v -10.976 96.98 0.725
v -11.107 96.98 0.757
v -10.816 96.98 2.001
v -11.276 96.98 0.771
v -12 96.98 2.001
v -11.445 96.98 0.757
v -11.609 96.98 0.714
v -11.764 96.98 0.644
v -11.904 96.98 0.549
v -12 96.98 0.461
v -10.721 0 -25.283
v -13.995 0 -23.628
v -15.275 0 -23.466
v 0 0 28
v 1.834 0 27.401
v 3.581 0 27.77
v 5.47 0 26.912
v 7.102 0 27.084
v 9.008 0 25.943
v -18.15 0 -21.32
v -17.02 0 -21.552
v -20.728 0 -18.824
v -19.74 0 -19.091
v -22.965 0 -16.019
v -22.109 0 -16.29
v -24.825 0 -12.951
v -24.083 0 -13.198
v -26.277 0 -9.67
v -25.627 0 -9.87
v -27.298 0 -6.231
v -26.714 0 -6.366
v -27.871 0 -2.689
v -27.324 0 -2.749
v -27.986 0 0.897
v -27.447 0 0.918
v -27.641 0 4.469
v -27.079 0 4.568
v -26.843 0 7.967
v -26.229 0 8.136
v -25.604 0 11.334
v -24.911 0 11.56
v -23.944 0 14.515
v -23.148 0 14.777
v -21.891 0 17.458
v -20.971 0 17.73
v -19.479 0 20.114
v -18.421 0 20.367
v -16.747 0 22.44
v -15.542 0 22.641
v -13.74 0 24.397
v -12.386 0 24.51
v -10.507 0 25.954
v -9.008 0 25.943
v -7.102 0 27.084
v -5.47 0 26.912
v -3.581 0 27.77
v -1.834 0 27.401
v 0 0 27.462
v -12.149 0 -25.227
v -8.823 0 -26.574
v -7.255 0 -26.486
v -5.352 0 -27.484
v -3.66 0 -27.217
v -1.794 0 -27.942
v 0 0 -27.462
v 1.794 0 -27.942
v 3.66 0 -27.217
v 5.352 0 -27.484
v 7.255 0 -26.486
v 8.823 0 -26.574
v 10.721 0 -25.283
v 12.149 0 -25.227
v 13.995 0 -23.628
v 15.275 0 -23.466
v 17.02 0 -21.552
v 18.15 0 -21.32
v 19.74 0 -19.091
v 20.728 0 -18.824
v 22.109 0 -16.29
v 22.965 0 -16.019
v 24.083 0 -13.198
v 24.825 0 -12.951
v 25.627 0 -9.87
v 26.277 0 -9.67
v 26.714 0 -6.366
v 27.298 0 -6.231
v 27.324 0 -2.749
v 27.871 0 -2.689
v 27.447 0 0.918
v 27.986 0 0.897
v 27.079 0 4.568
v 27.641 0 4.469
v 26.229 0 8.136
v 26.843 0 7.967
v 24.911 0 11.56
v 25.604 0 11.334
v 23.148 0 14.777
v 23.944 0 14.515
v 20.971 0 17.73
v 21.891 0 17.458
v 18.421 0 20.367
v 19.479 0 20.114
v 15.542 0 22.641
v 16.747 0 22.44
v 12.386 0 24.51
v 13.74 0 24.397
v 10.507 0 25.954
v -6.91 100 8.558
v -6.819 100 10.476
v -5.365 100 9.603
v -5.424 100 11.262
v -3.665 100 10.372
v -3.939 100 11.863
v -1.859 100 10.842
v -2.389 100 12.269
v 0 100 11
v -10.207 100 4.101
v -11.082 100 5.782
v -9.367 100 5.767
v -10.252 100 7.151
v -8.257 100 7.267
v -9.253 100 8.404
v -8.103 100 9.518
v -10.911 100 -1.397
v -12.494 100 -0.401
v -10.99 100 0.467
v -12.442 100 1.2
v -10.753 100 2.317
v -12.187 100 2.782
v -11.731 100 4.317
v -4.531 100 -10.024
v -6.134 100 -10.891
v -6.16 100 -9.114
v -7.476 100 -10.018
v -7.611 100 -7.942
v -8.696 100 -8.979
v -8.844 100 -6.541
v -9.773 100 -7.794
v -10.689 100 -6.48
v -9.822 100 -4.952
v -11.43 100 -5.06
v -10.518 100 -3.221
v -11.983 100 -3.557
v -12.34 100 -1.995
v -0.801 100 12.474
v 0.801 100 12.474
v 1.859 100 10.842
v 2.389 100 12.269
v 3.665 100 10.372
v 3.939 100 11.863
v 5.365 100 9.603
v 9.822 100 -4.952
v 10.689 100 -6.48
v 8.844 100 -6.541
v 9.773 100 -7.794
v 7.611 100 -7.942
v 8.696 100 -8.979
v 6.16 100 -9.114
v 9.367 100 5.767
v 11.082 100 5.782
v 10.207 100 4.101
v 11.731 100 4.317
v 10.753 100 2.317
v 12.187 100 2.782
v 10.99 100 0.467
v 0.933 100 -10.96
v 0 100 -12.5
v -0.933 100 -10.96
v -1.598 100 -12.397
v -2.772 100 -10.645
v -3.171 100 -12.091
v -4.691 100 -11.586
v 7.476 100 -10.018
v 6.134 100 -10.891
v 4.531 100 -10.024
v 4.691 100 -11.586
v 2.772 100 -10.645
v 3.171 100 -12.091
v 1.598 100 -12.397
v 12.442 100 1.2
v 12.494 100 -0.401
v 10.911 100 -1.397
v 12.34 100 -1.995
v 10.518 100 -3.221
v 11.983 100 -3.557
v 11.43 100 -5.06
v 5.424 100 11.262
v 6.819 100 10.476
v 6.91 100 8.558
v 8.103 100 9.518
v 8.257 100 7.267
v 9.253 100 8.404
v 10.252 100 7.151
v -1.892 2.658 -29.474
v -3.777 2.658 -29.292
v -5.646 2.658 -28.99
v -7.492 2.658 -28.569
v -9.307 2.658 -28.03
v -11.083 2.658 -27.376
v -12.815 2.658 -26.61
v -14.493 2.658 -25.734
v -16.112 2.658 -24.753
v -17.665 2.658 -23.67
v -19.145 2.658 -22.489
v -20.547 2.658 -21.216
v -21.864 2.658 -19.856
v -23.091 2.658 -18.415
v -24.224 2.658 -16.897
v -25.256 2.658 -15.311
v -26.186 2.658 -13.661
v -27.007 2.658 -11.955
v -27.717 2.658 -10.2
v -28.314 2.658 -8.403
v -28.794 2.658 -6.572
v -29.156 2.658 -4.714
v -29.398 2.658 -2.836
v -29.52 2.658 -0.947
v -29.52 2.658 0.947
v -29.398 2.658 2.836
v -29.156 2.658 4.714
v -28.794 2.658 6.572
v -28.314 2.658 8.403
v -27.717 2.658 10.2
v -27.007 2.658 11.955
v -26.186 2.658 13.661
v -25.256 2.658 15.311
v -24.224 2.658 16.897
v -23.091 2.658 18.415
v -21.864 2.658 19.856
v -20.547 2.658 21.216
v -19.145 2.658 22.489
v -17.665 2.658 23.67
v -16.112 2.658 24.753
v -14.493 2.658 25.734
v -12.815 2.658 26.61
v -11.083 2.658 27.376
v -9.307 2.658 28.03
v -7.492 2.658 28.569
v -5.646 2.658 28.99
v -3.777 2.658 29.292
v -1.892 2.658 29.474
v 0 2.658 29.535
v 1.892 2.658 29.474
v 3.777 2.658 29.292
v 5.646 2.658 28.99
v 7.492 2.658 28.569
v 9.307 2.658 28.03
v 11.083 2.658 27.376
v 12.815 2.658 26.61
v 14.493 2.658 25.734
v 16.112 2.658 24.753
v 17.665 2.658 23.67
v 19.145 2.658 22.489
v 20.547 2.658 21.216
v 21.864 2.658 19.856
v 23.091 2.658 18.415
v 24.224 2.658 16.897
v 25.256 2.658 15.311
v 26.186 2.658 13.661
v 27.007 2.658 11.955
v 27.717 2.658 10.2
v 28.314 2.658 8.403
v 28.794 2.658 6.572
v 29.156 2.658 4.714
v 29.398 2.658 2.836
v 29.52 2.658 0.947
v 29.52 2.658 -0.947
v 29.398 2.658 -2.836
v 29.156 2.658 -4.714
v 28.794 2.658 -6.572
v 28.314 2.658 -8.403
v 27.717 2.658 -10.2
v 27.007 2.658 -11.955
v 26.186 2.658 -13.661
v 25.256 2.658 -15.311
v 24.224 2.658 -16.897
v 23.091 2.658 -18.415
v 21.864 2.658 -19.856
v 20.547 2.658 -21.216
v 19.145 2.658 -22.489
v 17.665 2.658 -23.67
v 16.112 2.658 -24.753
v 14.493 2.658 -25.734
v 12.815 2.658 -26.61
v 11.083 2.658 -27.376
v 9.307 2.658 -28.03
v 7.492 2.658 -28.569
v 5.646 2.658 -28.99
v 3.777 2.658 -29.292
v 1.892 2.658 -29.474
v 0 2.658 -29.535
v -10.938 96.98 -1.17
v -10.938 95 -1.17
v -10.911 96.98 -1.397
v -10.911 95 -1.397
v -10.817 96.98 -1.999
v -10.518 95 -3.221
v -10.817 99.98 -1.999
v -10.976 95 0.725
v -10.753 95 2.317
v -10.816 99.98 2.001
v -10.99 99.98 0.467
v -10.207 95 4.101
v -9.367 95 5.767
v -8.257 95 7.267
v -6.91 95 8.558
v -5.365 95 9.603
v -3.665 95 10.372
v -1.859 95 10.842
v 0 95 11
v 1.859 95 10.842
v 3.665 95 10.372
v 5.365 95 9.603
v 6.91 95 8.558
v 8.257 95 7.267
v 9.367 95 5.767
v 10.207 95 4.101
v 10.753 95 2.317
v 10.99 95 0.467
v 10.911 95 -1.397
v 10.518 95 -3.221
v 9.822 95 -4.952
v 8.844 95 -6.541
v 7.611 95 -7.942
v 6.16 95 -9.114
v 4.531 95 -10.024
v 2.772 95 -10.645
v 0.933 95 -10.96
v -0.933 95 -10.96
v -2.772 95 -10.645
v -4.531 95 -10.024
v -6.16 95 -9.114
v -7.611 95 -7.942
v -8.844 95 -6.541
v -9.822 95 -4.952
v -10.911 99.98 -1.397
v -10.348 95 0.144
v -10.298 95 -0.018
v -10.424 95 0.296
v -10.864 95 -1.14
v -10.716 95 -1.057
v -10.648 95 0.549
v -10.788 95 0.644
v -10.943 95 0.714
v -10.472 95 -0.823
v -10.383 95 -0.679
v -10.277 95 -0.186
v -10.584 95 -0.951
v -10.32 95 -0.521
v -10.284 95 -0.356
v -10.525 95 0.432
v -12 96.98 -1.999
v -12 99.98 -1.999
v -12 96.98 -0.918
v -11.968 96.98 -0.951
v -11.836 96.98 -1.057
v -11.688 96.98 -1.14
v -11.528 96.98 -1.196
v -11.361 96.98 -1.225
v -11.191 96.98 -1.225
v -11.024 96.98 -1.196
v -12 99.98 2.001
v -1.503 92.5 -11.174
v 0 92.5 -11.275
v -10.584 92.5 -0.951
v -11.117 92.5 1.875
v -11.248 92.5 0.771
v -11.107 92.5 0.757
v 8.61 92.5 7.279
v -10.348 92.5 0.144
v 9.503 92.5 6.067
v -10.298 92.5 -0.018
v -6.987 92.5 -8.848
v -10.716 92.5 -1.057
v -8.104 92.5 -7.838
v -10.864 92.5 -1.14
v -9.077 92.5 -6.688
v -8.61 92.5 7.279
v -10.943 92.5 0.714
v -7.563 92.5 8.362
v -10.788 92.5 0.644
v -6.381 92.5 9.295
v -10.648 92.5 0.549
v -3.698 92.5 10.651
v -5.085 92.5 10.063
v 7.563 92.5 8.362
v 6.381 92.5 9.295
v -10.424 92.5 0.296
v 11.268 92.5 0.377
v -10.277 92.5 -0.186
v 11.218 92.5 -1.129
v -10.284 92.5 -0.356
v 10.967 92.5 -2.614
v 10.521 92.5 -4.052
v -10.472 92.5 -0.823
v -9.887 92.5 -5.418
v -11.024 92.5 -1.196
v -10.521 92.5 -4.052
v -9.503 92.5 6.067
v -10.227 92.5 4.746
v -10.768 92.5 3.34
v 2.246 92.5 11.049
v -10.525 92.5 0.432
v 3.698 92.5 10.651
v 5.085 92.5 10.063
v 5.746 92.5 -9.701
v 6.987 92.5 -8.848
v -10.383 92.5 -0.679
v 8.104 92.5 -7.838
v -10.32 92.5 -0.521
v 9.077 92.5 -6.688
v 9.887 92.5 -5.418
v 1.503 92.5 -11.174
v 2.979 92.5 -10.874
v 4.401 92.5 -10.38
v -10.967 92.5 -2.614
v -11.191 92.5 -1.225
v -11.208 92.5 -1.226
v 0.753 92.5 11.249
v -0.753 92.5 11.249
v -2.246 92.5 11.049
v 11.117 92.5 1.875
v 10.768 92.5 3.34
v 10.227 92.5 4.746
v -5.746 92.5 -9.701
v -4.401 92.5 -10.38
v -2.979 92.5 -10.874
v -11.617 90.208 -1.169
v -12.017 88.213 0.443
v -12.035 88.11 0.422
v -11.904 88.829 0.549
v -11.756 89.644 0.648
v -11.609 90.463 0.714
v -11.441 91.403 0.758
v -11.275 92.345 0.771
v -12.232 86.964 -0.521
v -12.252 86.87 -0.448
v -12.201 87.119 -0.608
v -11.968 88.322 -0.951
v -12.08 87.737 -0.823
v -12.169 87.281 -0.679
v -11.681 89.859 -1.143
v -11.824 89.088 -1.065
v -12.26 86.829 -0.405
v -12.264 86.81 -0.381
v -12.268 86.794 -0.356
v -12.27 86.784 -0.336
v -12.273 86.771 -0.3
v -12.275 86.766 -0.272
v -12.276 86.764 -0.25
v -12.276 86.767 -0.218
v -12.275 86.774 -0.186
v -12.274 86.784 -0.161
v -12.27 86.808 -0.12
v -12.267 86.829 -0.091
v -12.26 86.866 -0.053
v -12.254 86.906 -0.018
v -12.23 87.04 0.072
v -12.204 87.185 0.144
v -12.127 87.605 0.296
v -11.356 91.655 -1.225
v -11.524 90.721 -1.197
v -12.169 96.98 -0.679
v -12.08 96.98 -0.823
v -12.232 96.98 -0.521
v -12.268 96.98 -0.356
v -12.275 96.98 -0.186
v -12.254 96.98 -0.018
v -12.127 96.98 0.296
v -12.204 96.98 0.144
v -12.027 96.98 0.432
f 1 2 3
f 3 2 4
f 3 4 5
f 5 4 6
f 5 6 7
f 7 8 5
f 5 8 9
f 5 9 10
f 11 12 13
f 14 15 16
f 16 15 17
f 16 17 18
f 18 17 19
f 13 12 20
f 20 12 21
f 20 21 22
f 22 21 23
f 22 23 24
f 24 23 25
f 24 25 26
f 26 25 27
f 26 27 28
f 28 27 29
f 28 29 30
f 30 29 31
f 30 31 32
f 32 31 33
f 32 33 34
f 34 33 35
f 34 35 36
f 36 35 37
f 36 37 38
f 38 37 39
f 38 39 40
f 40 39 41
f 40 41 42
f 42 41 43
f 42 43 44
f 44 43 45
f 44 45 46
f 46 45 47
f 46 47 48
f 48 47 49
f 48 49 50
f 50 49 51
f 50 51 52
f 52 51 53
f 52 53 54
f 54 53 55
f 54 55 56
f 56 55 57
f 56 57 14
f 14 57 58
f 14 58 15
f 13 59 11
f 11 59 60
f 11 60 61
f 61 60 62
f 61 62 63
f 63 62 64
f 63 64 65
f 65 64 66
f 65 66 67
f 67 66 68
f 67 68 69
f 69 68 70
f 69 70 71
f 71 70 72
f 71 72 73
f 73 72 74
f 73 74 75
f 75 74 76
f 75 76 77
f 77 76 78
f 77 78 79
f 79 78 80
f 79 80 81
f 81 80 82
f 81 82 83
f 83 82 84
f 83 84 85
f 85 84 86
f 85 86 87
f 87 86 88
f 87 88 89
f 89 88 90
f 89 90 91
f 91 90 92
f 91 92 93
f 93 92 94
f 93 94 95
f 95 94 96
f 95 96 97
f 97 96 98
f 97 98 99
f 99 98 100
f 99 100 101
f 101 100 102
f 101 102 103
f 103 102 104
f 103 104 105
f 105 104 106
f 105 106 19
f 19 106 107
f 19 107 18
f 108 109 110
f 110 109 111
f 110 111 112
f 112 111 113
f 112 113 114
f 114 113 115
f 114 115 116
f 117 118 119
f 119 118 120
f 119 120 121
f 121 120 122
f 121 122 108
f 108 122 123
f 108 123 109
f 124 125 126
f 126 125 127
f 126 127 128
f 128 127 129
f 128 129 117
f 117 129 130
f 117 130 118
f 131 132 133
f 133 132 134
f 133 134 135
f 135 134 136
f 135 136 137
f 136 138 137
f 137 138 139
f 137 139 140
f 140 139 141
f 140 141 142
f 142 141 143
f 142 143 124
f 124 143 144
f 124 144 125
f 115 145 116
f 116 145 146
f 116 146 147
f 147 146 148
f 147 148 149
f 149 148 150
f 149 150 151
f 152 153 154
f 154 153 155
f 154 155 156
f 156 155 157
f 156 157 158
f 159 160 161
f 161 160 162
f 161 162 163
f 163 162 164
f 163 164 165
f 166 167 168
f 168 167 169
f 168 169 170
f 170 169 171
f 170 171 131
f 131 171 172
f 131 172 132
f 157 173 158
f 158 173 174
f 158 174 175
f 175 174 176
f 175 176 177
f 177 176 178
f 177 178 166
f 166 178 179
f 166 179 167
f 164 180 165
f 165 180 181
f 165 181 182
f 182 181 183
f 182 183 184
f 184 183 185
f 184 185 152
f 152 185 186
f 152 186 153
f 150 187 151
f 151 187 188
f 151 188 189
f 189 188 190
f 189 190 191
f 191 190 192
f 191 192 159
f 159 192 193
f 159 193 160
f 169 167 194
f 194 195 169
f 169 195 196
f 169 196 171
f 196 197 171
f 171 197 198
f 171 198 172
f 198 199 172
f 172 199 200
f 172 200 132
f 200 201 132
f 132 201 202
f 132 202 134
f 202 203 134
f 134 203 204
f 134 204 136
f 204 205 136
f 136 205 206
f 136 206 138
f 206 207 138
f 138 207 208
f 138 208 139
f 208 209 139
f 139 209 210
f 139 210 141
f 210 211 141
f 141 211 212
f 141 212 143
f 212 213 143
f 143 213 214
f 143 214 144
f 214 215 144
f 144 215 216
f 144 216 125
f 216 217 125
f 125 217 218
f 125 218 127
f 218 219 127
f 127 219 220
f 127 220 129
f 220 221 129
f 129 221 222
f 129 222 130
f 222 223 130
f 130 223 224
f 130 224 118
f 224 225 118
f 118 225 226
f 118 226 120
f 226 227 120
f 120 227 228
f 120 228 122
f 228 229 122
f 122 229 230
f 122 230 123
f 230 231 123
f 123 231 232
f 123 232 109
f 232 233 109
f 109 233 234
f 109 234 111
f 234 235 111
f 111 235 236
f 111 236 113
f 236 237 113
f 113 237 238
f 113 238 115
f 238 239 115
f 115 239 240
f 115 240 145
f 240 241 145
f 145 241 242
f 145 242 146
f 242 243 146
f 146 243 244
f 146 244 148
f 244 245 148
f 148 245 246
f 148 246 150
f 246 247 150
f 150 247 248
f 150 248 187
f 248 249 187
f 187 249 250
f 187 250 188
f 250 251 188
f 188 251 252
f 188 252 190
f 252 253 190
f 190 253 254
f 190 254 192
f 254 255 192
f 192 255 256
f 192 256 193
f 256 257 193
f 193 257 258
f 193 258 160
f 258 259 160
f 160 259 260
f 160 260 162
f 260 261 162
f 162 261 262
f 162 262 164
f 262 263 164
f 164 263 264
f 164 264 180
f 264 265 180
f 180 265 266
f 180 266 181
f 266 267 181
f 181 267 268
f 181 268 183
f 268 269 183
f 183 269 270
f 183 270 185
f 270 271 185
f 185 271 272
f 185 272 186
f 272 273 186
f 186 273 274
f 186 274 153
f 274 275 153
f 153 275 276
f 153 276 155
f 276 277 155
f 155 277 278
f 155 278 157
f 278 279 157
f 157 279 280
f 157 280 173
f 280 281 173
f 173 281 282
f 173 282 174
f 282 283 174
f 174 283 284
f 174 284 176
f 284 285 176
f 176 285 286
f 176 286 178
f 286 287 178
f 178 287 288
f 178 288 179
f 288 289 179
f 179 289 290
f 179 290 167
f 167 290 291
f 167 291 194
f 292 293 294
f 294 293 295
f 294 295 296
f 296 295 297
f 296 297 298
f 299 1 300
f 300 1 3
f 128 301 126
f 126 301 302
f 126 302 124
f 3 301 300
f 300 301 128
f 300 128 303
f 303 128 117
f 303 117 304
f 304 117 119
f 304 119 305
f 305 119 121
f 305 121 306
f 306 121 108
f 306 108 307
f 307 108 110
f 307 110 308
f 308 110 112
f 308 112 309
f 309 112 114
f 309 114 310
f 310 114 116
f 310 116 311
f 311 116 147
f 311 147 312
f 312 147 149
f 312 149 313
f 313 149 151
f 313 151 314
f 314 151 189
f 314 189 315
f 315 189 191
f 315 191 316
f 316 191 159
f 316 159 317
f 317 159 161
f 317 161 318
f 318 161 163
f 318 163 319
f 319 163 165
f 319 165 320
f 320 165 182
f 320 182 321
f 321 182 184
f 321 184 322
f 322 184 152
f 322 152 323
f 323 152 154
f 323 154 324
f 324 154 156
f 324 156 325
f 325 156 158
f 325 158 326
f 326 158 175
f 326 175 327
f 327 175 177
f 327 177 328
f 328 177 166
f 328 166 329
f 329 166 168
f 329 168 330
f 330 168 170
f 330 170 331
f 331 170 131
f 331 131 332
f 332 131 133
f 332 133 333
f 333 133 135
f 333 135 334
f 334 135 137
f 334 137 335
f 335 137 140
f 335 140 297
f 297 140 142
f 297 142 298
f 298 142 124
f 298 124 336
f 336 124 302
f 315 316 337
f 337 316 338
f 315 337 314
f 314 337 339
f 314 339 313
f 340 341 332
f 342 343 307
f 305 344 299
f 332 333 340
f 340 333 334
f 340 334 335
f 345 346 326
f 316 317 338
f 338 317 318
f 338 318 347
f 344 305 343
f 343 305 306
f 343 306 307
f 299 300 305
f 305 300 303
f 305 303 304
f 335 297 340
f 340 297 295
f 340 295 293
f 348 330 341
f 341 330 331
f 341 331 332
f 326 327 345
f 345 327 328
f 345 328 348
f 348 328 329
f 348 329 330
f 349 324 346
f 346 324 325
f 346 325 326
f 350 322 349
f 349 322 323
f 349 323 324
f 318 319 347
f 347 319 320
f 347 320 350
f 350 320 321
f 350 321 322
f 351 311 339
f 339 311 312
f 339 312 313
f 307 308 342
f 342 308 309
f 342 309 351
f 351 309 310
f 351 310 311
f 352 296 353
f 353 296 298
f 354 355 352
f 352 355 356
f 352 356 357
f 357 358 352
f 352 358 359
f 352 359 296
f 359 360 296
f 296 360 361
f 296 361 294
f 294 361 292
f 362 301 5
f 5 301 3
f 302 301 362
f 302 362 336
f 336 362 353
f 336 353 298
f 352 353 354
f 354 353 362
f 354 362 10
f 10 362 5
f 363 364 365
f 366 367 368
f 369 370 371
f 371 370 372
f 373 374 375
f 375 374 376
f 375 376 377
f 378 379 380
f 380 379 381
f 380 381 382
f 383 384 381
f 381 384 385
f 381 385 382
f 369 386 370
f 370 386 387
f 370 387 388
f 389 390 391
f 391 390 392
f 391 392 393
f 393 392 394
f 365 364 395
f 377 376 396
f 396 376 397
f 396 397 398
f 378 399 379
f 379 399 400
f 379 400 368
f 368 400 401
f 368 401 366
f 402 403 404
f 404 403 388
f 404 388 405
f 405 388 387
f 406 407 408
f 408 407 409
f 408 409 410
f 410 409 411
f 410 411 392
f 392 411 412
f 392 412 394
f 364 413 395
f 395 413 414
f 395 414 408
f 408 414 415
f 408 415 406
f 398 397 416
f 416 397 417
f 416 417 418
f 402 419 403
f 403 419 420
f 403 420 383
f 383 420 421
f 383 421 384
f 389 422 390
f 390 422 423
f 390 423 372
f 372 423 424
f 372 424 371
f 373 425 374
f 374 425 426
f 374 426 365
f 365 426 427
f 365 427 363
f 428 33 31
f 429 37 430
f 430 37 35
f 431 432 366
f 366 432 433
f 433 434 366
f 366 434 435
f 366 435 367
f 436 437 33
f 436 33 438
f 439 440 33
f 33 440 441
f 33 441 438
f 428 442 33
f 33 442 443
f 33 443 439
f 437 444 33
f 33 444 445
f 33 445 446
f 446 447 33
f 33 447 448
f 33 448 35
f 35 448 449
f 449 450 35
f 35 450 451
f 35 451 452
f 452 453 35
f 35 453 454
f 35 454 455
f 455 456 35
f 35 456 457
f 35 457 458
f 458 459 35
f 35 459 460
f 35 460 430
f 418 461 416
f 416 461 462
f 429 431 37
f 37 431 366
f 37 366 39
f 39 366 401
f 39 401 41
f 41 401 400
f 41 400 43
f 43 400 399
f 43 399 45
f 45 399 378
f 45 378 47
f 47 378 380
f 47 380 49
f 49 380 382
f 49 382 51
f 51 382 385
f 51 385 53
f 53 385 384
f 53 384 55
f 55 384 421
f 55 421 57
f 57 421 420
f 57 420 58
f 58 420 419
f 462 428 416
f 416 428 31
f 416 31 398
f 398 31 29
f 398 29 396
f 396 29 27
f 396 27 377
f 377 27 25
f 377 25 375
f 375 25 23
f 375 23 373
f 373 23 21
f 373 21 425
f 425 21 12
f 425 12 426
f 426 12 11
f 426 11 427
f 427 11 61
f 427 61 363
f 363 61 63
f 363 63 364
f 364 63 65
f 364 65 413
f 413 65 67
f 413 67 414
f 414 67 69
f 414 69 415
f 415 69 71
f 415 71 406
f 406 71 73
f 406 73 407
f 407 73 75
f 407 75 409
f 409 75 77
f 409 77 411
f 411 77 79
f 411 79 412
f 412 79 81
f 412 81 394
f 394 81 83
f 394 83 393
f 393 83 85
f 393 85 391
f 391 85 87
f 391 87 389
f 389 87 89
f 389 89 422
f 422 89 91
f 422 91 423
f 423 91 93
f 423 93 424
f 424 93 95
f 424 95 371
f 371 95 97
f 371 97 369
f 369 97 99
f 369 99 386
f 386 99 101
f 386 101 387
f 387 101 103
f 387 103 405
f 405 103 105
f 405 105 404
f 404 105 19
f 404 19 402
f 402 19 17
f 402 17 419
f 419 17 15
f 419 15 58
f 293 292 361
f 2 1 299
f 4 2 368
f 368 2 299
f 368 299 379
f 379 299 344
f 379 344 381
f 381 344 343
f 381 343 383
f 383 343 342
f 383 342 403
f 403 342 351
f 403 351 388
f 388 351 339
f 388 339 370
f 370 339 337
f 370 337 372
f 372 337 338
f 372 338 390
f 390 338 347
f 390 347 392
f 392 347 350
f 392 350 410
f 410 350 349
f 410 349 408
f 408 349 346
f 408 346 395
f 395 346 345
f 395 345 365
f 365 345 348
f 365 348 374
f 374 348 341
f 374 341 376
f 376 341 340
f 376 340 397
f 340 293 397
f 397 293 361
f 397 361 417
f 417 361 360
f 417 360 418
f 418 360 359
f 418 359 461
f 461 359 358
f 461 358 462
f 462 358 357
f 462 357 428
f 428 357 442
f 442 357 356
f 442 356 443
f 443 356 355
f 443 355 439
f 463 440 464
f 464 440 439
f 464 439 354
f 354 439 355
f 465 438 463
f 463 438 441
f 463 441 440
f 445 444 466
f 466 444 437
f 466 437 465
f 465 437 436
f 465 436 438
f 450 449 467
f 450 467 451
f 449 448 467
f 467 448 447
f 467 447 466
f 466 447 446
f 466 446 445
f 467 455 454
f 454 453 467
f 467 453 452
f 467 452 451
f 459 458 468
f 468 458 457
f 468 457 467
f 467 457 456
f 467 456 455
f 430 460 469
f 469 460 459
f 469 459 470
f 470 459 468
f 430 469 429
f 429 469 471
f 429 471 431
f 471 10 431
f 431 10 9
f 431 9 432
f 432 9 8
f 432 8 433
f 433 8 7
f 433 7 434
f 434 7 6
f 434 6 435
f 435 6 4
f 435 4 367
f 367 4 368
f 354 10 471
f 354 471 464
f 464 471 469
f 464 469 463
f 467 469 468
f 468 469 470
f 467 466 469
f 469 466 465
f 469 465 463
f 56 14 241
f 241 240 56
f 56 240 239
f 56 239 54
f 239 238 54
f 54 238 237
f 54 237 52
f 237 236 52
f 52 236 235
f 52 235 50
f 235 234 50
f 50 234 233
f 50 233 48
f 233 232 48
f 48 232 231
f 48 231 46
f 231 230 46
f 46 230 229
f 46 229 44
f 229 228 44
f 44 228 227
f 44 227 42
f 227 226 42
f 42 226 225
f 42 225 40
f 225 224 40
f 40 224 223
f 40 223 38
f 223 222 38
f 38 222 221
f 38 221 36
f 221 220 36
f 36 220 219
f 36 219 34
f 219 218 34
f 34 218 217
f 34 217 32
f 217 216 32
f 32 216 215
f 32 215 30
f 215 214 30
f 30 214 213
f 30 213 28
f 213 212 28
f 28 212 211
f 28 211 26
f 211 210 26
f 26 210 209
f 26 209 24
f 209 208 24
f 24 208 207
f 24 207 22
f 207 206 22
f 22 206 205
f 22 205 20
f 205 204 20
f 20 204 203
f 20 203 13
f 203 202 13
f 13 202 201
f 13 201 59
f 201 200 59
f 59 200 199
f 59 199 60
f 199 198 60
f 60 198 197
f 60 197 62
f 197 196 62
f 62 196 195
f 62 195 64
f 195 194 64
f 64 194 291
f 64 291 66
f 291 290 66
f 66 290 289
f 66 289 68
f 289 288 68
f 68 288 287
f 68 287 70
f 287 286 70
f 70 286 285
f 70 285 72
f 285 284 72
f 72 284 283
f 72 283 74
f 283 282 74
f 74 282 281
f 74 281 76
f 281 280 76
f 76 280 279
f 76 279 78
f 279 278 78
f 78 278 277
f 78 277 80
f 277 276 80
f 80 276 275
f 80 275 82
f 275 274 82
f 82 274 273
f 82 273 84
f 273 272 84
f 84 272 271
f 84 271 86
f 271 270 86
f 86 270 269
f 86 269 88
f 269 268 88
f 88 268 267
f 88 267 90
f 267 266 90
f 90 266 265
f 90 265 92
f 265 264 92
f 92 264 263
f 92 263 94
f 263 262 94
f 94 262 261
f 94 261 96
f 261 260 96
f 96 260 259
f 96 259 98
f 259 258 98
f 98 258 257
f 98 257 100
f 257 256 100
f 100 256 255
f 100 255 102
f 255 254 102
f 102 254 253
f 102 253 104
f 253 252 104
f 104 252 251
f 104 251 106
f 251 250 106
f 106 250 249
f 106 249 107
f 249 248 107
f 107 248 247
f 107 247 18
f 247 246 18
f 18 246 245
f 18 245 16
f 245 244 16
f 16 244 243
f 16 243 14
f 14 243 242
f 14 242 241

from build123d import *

# Parameters (mm, degrees)
SKETCH2_R          = 12.5
SKETCH1_R          = 30
SKETCH5_R          = 11
CUT_EXTRUDE2_DEPTH = 5
SKETCH7_W          = 4
SKETCH7_H          = 3
CUT_EXTRUDE4_DEPTH = 12
SKETCH8_R          = 1
CUT_EXTRUDE6_DEPTH = 106.854123131
CHAMFER1_SIZE      = 2
CHAMFER1_SIZE2     = 2.698735062


# Read off the part's stored shape, not the designer's step: Shell2
with BuildPart() as part:
    # Sketch2 → Loft1 section 0
    with BuildSketch(Plane(origin=(0, 100, 0), x_dir=(1, 0, 0), z_dir=(0, 1, 0))):
        Circle(SKETCH2_R)
    # Sketch1 → Loft1 section 1
    with BuildSketch(Plane(origin=(0, 0, 0), x_dir=(1, 0, 0), z_dir=(0, 1, 0))):
        Circle(SKETCH1_R)
    loft()

    # Sketch5 → Cut-Extrude2 (cut)
    with BuildSketch(Plane(origin=(0, 100, 0), x_dir=(1, 0, 0), z_dir=(0, 1, 0))):
        with Locations(Location((0, 0, 0), (0, 0, 270))):
            Circle(SKETCH5_R)
    extrude(amount=-CUT_EXTRUDE2_DEPTH, mode=Mode.SUBTRACT)

    # Sketch7 → Cut-Extrude4 (cut)
    with BuildSketch(Plane(origin=(0, 0, 0), x_dir=(0, 0, -1), z_dir=(1, 0, 0))):
        with Locations((-0.000948901, 98.479870862)):
            Rectangle(SKETCH7_W, SKETCH7_H)
    extrude(amount=-CUT_EXTRUDE4_DEPTH, mode=Mode.SUBTRACT)

    # Shell2 outline → Shell2 (revolve, cut)
    with BuildSketch(Plane.XY):
        Polygon((11.274507437, 92.5), (0, 92.5), (0, 0), (27.462007437, 0), align=None)
    revolve(axis=Axis((0, 0, 0), (0, 1, 0)), mode=Mode.SUBTRACT)

    # Sketch8 → Cut-Extrude6 (cut, through all)
    with BuildSketch(Plane(origin=(0, 96.979870862, 0), x_dir=(1, 0, 0), z_dir=(0, 1, 0))):
        with Locations(Location((-11.275969927, 0.228612613, 0), (0, 0, 271.596209632))):
            Circle(SKETCH8_R)
    extrude(amount=-CUT_EXTRUDE6_DEPTH, mode=Mode.SUBTRACT)

    # Chamfer1
    chamfer1_edges = [part.edges().sort_by_distance(p)[0] for p in [
        (-30, 0, 0),
    ]]
    chamfer1_side = [part.faces().sort_by_distance(p)[0] for p in [
        (-29.151471863, 0, 0),
    ]]
    chamfer(chamfer1_edges, length=CHAMFER1_SIZE, length2=CHAMFER1_SIZE2, reference=chamfer1_side[0])


solid = part.part
